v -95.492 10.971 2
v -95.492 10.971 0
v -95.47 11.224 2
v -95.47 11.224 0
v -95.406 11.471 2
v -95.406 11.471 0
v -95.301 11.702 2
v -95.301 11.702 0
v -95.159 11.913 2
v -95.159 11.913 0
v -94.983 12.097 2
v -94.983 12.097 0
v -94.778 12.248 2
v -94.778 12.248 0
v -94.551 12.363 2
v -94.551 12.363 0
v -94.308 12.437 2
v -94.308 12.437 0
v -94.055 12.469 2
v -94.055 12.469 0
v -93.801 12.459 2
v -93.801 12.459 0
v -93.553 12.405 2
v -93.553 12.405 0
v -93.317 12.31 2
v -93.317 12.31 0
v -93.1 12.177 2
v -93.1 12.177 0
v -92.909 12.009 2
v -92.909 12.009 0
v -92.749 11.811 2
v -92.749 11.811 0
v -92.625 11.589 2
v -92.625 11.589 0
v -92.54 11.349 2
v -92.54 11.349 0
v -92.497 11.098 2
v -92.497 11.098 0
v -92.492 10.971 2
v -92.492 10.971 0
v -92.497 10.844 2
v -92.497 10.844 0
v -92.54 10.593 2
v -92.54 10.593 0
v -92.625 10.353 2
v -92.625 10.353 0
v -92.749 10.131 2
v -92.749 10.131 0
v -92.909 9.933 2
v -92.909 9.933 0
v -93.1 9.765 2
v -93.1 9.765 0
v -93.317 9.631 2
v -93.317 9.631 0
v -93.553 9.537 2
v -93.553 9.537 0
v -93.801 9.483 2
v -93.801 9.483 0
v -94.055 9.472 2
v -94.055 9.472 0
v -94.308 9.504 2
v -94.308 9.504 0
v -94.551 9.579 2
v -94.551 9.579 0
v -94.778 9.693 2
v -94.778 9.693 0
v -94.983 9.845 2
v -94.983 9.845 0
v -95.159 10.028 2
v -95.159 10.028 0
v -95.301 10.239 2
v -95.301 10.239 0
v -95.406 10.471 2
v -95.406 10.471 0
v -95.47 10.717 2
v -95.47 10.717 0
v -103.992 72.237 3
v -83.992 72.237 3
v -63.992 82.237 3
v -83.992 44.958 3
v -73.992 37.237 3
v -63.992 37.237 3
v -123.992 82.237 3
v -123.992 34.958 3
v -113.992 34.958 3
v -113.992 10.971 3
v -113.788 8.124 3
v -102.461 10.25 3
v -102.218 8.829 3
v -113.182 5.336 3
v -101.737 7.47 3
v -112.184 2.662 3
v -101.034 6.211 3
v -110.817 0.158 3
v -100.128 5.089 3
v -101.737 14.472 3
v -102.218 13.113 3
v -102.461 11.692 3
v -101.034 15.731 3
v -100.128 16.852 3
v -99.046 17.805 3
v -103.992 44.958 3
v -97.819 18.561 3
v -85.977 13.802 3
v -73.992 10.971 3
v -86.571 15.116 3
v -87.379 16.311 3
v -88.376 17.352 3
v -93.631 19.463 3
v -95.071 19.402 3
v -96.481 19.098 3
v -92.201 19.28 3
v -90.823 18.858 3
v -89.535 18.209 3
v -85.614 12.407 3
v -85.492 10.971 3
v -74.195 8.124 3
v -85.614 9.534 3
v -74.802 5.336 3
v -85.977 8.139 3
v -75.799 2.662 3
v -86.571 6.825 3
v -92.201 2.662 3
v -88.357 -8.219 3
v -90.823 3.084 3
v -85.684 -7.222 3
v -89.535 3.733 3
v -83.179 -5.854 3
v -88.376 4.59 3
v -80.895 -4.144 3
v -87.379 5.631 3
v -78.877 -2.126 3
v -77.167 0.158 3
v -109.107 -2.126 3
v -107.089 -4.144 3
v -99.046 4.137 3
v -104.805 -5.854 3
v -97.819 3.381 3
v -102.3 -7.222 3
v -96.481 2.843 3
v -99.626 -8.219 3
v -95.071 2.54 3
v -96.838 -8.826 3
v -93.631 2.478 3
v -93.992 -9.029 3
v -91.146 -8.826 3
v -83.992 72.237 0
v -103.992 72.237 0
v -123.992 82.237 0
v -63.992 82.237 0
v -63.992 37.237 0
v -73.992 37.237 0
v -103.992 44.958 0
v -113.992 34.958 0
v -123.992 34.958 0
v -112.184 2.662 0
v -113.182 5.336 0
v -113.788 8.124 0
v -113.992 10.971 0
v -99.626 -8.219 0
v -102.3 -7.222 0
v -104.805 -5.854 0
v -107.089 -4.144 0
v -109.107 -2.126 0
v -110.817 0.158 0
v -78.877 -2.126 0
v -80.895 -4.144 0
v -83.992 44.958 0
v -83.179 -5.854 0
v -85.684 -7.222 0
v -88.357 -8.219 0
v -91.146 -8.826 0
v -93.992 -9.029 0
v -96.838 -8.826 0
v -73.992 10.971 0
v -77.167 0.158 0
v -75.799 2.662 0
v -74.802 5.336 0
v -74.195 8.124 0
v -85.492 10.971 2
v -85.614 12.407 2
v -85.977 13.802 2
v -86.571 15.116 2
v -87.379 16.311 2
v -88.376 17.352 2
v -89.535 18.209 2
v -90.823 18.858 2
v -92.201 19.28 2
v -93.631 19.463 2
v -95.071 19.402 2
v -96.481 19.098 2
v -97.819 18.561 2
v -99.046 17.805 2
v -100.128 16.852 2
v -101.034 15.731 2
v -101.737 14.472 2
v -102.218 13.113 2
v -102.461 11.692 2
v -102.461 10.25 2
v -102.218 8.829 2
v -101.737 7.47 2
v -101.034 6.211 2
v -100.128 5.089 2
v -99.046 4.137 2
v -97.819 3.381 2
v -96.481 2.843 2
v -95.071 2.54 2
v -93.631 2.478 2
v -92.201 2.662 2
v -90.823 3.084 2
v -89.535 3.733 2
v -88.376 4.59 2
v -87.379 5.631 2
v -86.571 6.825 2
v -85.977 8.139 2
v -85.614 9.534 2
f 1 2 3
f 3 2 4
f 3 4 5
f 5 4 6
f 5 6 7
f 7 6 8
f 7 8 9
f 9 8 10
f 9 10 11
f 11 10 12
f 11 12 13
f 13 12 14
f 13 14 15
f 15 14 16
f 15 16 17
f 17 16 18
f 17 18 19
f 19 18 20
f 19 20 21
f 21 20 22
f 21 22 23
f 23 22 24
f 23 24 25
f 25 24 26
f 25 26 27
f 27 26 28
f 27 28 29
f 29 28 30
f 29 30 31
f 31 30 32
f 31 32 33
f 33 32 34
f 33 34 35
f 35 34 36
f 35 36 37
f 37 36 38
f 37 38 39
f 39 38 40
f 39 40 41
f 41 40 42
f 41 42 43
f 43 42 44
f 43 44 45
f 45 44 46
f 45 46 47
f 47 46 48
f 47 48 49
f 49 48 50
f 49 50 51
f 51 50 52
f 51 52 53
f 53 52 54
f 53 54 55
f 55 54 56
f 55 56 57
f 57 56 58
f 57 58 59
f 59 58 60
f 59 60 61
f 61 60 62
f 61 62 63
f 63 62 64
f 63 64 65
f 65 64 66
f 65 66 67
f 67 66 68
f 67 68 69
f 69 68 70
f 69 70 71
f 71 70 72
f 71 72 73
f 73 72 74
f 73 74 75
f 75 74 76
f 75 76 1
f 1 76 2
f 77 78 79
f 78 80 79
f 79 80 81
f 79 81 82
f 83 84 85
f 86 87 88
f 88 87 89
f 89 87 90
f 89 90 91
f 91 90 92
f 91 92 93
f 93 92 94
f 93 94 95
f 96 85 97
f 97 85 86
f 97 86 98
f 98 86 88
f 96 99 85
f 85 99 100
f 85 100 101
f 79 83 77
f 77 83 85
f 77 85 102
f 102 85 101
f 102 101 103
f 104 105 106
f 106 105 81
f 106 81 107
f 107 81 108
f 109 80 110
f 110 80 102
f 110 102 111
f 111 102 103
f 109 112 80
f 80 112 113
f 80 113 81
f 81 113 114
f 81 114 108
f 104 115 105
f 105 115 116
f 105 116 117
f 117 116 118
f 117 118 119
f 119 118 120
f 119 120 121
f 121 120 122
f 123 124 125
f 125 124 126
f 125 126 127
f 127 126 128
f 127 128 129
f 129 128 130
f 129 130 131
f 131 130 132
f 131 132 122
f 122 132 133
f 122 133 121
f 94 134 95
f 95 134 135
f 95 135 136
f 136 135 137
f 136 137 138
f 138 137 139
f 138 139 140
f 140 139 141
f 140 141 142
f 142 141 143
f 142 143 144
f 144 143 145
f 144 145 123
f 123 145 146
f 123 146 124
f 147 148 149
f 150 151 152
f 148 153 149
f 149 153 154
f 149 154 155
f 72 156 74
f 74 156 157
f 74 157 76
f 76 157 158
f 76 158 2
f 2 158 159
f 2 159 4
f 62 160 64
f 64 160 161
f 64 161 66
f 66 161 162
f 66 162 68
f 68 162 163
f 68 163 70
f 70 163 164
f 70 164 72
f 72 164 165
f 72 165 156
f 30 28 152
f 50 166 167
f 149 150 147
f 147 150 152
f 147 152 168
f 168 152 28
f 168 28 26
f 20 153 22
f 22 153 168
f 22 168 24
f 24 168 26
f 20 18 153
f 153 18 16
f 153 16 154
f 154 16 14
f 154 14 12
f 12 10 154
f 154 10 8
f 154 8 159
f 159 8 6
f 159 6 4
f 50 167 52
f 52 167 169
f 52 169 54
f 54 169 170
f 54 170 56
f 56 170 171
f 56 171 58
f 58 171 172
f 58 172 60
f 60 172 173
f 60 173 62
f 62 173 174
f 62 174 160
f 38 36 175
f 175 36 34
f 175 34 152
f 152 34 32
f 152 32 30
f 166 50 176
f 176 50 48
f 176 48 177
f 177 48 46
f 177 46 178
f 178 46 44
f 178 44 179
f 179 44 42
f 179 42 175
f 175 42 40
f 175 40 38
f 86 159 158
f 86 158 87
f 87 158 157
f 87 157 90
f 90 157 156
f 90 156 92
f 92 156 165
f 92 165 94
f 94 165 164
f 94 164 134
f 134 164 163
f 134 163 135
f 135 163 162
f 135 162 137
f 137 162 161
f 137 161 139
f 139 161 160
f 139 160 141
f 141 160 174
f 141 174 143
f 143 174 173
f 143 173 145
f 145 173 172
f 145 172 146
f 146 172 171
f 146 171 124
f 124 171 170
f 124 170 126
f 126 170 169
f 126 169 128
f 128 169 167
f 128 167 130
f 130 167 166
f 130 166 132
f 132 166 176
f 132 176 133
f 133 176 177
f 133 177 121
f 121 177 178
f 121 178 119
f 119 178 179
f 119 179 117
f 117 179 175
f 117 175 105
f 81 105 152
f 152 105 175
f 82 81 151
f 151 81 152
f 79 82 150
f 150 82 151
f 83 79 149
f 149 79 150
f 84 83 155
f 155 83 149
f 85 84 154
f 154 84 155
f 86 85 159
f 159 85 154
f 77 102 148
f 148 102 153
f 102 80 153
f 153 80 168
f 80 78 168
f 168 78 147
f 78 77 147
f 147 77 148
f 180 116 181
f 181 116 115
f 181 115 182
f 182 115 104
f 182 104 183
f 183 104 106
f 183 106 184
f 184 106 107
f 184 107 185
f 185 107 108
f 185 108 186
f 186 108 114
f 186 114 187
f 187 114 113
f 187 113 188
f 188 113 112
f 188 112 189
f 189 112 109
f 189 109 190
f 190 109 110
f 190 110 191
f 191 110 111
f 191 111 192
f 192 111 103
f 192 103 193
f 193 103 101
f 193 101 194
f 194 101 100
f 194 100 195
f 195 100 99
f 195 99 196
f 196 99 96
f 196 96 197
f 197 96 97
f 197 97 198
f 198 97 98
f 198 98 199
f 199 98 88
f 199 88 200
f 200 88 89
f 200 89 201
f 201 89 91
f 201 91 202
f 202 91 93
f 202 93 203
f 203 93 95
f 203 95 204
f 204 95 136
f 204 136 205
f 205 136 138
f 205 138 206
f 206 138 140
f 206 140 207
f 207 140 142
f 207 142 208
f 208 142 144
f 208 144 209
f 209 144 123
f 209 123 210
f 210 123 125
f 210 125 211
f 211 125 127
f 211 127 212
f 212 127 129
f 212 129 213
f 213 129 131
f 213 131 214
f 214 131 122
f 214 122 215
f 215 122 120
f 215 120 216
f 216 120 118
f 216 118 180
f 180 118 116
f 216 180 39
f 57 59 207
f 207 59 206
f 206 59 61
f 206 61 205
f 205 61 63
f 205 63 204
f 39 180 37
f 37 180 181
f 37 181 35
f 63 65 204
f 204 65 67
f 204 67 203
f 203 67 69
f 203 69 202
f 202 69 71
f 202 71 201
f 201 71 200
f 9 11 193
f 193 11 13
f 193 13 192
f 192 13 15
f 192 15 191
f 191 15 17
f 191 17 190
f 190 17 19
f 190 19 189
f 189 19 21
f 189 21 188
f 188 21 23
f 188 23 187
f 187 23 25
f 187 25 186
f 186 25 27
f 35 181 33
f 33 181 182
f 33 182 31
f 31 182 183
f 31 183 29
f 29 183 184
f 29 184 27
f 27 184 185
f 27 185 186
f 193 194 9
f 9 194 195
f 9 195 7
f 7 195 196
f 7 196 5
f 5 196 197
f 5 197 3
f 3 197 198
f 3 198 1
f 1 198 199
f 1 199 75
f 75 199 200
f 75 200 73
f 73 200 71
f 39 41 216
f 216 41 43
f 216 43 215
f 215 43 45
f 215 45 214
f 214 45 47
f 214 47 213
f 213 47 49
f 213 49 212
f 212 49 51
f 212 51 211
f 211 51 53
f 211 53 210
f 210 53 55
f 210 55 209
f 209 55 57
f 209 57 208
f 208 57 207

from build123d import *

# Parameters (mm, degrees)
CROQUIS1_R              = 1.5
CROQUIS1_W              = 20
CROQUIS1_H              = 27.278528679
SALIENTE_EXTRUIR1_DEPTH = 3
CROQUIS2_R              = 8.5
CORTAR_EXTRUIR1_DEPTH   = 1


with BuildPart() as part:
    # Croquis1 → Saliente-Extruir1 (new body)
    with BuildSketch(Plane.XY):
        with BuildLine():
            Line((-113.991811363, 10.970788205), (-113.991811363, 34.958108792))
            Line((-113.991811363, 34.958108792), (-123.991811363, 34.958108792))
            Line((-123.991811363, 34.958108792), (-123.991811363, 82.236637471))
            Line((-123.991811363, 82.236637471), (-63.991811363, 82.236637471))
            Line((-63.991811363, 82.236637471), (-63.991811363, 37.236637471))
            Line((-63.991811363, 37.236637471), (-73.991811363, 37.236637471))
            Line((-73.991811363, 37.236637471), (-73.991811363, 10.970788205))
            ThreePointArc((-73.991811363, 10.970788205), (-93.991811363, -9.029211795), (-113.991811363, 10.970788205))
        make_face()
        with Locations((-93.991811363, 10.970788205)):
            Circle(CROQUIS1_R, mode=Mode.SUBTRACT)
        with Locations((-93.991811363, 58.597373132)):
            Rectangle(CROQUIS1_W, CROQUIS1_H, mode=Mode.SUBTRACT)
    extrude(amount=SALIENTE_EXTRUIR1_DEPTH)

    # Croquis2 → Cortar-Extruir1 (cut)
    with BuildSketch(Plane.XY.offset(3)):
        with Locations((-93.991811363, 10.970788205)):
            Circle(CROQUIS2_R)
    extrude(amount=-CORTAR_EXTRUIR1_DEPTH, mode=Mode.SUBTRACT)


solid = part.part
